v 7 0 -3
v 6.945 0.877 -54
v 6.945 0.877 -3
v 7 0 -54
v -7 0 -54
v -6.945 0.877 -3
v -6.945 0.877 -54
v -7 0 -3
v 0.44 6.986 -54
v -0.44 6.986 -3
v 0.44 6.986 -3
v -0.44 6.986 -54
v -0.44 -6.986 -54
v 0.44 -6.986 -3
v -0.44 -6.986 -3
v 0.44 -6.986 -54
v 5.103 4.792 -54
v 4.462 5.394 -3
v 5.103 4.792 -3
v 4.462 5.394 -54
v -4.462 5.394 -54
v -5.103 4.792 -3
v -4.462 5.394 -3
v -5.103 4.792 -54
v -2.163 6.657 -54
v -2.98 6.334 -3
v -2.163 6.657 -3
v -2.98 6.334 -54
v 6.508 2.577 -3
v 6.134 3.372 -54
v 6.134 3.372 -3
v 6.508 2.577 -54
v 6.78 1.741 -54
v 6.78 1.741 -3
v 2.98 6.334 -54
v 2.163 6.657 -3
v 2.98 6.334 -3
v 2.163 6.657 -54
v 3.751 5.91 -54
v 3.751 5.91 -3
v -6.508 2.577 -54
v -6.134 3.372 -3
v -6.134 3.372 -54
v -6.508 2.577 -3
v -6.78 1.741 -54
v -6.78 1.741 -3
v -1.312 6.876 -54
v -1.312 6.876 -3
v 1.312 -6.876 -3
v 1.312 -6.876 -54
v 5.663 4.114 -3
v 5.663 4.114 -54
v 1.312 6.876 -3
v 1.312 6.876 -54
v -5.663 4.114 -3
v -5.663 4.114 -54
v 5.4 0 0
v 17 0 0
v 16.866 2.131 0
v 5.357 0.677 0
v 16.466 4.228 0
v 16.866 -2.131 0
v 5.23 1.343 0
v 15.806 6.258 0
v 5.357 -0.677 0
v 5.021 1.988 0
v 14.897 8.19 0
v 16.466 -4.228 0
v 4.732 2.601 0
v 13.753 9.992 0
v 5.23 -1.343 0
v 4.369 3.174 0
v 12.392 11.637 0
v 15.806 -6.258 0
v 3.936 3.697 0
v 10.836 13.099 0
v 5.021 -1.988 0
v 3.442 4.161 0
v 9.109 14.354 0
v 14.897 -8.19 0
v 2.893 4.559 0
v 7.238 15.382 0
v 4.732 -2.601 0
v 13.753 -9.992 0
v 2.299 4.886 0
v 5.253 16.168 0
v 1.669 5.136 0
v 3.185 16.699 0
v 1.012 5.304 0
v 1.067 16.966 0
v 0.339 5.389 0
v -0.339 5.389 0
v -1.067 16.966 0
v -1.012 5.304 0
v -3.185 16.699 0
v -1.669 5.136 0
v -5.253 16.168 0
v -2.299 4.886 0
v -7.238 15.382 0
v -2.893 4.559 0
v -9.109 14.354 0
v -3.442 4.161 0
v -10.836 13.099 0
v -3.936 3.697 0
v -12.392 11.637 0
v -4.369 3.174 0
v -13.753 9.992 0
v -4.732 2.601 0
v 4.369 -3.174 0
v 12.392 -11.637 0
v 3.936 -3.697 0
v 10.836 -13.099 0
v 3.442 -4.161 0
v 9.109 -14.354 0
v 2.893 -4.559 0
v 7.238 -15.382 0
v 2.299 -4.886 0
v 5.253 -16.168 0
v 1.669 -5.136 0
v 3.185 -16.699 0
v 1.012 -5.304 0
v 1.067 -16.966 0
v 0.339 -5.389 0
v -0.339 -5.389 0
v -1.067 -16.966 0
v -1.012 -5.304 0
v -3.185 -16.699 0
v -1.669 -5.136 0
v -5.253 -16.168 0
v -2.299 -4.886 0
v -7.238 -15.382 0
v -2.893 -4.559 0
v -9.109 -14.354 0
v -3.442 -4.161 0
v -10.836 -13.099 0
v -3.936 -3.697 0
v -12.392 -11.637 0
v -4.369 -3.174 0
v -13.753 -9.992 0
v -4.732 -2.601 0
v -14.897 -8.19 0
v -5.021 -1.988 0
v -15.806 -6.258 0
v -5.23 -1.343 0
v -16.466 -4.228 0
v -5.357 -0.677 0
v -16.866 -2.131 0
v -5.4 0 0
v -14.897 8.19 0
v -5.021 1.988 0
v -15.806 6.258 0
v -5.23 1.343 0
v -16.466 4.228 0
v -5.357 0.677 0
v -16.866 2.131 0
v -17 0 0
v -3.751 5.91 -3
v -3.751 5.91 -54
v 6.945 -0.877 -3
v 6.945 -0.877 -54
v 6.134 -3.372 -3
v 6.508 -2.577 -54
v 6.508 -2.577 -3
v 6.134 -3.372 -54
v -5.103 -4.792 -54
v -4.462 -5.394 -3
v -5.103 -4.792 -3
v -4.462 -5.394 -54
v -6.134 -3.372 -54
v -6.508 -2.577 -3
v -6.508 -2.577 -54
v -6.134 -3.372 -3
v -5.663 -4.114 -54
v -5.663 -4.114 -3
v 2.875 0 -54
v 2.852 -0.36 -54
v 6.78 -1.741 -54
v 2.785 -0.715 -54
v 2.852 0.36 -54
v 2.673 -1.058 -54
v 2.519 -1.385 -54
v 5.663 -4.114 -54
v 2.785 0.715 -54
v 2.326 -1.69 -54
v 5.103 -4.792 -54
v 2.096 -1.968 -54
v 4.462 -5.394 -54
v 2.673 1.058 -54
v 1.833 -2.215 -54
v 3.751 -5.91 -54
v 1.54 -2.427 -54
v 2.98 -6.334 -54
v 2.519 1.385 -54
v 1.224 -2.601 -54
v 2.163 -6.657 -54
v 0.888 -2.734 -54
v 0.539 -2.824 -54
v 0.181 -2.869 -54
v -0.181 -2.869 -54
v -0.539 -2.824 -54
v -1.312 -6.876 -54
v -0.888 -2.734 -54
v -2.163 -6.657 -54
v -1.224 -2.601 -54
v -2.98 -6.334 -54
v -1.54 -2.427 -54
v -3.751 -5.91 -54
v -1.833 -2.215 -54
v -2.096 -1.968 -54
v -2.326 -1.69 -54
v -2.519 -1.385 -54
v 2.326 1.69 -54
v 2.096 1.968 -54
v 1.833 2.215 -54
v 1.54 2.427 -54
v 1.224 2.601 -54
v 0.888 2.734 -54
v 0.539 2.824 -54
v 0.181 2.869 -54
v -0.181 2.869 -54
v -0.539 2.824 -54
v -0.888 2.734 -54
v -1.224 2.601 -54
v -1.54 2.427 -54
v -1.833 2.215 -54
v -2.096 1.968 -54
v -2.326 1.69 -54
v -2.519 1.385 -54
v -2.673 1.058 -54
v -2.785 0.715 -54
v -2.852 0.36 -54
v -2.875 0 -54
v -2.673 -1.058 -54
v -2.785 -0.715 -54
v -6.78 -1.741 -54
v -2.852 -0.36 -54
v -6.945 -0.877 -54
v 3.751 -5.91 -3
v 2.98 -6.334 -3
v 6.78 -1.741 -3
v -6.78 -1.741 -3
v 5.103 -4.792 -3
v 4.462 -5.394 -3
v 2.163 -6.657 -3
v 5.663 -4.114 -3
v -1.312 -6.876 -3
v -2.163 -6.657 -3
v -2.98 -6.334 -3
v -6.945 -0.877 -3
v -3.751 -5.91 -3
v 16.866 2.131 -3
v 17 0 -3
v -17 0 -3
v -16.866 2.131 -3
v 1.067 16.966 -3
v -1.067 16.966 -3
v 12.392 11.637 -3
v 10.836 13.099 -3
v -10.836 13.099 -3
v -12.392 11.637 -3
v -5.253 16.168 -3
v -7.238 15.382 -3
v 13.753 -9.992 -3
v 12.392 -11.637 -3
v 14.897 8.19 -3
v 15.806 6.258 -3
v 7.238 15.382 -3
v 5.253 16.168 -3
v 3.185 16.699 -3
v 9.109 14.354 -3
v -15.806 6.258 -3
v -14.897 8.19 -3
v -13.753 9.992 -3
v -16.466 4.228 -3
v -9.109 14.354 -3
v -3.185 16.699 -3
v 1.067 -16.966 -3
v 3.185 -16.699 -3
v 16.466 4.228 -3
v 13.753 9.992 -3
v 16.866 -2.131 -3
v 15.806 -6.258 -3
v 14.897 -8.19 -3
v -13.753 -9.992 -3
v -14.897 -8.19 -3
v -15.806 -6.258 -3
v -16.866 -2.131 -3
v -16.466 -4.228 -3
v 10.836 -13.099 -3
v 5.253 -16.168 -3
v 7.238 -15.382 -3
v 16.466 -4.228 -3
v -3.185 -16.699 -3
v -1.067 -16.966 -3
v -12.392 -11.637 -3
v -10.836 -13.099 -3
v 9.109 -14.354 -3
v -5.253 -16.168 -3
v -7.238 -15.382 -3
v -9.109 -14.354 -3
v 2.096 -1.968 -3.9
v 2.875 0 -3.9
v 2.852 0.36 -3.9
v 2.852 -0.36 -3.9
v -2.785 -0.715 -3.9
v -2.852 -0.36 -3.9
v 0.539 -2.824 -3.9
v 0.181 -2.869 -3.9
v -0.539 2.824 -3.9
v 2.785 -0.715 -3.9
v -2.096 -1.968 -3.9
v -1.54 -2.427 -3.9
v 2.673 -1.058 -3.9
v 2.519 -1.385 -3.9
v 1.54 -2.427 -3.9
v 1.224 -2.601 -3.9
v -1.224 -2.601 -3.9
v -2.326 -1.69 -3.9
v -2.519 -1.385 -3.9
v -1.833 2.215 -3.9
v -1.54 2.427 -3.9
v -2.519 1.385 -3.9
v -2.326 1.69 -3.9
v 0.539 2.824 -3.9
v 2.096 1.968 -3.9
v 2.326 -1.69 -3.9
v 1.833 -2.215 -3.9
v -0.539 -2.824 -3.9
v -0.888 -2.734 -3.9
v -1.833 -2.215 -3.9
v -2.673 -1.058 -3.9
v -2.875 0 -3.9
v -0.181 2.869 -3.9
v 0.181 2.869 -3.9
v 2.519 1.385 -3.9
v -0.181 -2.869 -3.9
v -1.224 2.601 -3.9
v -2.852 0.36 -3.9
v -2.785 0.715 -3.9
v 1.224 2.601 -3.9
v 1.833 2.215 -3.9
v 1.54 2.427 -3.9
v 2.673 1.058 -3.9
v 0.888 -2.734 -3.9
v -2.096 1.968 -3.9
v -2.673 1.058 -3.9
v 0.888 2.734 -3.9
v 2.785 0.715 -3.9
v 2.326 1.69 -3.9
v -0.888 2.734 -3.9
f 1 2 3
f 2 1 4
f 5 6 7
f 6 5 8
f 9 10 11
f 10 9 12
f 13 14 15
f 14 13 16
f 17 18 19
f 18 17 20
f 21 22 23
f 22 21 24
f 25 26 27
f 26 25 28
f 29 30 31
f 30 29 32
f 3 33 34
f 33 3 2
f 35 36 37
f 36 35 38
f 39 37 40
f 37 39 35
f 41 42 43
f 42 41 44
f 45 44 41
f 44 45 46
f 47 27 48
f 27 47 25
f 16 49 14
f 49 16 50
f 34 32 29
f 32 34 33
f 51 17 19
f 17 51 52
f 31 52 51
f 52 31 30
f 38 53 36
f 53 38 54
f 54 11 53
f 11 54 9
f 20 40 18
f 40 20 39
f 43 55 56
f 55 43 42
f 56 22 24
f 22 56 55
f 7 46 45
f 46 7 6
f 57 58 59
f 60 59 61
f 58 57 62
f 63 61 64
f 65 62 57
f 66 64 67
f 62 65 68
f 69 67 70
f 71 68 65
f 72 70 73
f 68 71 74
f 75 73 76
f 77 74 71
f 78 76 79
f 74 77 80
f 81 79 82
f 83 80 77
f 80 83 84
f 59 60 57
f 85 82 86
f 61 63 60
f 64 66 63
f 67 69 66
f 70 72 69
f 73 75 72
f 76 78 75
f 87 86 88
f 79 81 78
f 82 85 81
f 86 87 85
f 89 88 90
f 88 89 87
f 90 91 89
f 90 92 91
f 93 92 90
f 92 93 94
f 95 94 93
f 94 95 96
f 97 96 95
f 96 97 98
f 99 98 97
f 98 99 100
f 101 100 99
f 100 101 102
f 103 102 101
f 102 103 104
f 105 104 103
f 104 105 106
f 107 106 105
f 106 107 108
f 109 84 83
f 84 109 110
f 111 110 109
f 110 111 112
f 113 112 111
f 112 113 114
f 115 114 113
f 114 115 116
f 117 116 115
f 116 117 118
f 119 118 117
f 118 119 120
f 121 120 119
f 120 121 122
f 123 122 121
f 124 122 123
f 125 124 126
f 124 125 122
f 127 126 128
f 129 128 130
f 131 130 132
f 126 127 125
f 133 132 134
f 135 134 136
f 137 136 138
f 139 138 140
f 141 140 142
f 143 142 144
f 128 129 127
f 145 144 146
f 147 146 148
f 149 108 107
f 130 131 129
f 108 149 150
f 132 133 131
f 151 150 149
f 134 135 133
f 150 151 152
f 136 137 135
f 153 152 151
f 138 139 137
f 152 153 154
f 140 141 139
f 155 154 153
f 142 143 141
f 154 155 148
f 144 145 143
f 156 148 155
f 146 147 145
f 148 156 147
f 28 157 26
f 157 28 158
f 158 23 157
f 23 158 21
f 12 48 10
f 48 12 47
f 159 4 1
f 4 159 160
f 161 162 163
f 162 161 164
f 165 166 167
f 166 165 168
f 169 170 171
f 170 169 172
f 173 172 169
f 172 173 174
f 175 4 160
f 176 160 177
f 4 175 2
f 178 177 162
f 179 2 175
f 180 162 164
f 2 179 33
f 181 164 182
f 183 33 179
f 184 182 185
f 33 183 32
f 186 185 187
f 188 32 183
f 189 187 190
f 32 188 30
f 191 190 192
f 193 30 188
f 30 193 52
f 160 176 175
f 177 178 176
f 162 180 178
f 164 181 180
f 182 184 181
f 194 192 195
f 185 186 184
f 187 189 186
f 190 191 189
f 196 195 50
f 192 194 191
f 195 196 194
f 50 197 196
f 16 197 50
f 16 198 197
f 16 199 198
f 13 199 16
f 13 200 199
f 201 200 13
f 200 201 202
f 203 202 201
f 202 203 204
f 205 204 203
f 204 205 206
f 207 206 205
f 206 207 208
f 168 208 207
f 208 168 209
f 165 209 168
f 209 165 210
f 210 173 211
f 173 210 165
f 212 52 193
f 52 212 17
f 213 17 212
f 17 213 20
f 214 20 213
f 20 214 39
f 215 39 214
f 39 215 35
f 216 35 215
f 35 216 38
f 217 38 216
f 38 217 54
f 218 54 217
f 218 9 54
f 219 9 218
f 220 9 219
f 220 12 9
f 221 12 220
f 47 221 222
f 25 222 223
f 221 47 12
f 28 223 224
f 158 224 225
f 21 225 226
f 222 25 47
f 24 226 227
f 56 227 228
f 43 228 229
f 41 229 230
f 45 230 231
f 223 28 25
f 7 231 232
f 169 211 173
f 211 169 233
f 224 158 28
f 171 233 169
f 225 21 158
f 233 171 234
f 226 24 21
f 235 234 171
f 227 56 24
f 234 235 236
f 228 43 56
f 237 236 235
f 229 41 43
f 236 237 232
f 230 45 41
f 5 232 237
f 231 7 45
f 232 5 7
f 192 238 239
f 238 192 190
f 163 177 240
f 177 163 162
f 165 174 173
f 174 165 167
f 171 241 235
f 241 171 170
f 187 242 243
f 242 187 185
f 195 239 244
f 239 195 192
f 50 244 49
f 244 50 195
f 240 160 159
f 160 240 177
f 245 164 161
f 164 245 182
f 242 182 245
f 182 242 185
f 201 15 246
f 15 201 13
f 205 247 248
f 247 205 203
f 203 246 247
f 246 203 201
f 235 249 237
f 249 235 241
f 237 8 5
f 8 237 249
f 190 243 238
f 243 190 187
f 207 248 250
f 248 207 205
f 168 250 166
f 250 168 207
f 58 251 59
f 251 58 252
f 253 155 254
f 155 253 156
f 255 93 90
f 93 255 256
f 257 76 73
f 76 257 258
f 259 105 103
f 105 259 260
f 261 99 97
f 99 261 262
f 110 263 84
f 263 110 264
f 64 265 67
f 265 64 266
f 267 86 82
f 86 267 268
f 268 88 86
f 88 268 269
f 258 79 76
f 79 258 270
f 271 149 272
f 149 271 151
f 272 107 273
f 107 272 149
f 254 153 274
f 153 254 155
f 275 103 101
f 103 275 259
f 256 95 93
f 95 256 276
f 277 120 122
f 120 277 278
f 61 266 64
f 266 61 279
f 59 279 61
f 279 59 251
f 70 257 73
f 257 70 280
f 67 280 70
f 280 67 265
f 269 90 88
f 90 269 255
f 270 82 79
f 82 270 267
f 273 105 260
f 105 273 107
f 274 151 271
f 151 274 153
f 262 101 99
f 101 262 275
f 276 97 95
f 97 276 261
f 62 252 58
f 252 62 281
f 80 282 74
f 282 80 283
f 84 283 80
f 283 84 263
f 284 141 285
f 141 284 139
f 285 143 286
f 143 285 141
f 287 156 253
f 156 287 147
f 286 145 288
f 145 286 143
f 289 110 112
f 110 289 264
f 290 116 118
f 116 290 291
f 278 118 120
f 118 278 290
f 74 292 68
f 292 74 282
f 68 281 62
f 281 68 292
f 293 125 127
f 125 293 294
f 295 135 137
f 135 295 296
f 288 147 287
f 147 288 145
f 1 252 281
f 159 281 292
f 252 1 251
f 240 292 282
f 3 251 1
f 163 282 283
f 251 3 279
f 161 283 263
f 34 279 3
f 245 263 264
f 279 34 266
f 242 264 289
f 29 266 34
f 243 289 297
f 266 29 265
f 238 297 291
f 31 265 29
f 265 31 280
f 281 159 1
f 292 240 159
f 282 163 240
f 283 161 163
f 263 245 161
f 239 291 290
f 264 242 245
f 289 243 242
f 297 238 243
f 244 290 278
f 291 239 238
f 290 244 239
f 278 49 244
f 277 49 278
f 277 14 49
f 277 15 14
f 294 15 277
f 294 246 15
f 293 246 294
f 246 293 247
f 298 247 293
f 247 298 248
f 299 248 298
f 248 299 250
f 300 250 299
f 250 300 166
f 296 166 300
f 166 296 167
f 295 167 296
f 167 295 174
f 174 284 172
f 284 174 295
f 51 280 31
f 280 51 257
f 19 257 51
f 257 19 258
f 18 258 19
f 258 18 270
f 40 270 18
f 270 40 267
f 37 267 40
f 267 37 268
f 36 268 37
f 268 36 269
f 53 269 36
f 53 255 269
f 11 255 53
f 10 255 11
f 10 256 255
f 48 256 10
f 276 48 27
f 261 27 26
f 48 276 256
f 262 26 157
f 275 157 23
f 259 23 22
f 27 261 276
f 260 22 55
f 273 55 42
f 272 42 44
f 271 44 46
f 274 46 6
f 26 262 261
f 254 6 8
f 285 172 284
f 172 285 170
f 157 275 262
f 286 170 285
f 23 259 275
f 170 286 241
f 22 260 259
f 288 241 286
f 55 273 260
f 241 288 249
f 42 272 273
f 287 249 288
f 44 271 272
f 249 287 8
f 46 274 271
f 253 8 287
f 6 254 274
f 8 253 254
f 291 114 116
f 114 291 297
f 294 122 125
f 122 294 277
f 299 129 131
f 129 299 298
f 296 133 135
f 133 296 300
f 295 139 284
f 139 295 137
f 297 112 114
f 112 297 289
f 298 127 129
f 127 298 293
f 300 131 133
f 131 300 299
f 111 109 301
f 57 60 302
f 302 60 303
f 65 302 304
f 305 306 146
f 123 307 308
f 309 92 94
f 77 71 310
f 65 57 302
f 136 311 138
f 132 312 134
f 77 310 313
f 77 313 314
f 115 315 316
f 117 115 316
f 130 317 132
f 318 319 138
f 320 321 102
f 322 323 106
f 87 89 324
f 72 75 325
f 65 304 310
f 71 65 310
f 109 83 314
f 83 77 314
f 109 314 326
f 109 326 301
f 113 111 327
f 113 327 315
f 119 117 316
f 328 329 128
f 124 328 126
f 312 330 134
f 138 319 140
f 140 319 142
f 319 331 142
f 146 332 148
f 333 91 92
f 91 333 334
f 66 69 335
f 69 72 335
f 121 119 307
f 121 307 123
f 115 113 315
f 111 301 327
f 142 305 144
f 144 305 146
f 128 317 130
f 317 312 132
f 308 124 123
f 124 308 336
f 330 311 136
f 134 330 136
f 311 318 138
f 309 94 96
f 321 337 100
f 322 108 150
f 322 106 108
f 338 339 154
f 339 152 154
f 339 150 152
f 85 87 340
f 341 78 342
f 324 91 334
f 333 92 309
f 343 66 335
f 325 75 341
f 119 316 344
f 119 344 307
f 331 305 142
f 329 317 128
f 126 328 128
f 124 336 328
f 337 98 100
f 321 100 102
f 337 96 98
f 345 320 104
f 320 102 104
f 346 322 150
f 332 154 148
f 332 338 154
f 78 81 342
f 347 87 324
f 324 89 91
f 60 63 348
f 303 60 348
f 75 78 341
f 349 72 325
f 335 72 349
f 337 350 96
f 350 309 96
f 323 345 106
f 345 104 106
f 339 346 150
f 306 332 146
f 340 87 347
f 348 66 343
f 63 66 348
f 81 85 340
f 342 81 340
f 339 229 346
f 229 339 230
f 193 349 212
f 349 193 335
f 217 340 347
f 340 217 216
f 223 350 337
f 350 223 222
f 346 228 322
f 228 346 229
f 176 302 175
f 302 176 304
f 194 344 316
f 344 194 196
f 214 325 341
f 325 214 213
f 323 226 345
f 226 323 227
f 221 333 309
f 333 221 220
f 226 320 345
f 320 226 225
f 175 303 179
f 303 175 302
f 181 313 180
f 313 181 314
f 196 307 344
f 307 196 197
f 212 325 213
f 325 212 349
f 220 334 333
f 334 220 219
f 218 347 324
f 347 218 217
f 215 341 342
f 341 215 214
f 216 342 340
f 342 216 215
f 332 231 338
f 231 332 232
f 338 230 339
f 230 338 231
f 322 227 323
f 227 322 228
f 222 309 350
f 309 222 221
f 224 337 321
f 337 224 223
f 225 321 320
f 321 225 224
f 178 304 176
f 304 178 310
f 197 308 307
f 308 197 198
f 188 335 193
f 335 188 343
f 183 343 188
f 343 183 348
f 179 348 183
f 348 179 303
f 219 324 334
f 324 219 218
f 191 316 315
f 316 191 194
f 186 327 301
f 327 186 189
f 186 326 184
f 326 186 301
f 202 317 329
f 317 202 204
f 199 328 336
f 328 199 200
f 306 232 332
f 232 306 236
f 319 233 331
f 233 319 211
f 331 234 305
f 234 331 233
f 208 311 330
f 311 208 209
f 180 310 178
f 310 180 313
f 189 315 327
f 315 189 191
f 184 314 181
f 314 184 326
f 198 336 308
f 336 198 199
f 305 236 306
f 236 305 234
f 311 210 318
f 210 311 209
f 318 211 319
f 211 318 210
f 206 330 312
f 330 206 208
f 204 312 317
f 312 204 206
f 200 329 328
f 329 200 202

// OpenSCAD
$fn = 50;


difference() {
	union() {
		translate(v = [0, 0, -54.0000000000]) {
			cylinder(h = 54, r = 7.0000000000);
		}
		translate(v = [0, 0, -3.0000000000]) {
			cylinder(h = 3, r = 17.0000000000);
		}
	}
	union() {
		translate(v = [0, 0, 0]) {
			rotate(a = [0, 0, 0]) {
				difference() {
					union() {
						#translate(v = [0, 0, -54.0000000000]) {
							cylinder(h = 54, r = 2.6000000000);
						}
						#translate(v = [0, 0, -3.9000000000]) {
							cylinder(h = 3.9000000000, r = 7.0000000000, r1 = 2.8750000000, r2 = 5.4000000000);
						}
						#translate(v = [0, 0, -54.0000000000]) {
							cylinder(h = 54, r = 2.8750000000);
						}
						#translate(v = [0, 0, -54.0000000000]) {
							cylinder(h = 54, r = 2.6000000000);
						}
					}
					union();
				}
			}
		}
	}
}
